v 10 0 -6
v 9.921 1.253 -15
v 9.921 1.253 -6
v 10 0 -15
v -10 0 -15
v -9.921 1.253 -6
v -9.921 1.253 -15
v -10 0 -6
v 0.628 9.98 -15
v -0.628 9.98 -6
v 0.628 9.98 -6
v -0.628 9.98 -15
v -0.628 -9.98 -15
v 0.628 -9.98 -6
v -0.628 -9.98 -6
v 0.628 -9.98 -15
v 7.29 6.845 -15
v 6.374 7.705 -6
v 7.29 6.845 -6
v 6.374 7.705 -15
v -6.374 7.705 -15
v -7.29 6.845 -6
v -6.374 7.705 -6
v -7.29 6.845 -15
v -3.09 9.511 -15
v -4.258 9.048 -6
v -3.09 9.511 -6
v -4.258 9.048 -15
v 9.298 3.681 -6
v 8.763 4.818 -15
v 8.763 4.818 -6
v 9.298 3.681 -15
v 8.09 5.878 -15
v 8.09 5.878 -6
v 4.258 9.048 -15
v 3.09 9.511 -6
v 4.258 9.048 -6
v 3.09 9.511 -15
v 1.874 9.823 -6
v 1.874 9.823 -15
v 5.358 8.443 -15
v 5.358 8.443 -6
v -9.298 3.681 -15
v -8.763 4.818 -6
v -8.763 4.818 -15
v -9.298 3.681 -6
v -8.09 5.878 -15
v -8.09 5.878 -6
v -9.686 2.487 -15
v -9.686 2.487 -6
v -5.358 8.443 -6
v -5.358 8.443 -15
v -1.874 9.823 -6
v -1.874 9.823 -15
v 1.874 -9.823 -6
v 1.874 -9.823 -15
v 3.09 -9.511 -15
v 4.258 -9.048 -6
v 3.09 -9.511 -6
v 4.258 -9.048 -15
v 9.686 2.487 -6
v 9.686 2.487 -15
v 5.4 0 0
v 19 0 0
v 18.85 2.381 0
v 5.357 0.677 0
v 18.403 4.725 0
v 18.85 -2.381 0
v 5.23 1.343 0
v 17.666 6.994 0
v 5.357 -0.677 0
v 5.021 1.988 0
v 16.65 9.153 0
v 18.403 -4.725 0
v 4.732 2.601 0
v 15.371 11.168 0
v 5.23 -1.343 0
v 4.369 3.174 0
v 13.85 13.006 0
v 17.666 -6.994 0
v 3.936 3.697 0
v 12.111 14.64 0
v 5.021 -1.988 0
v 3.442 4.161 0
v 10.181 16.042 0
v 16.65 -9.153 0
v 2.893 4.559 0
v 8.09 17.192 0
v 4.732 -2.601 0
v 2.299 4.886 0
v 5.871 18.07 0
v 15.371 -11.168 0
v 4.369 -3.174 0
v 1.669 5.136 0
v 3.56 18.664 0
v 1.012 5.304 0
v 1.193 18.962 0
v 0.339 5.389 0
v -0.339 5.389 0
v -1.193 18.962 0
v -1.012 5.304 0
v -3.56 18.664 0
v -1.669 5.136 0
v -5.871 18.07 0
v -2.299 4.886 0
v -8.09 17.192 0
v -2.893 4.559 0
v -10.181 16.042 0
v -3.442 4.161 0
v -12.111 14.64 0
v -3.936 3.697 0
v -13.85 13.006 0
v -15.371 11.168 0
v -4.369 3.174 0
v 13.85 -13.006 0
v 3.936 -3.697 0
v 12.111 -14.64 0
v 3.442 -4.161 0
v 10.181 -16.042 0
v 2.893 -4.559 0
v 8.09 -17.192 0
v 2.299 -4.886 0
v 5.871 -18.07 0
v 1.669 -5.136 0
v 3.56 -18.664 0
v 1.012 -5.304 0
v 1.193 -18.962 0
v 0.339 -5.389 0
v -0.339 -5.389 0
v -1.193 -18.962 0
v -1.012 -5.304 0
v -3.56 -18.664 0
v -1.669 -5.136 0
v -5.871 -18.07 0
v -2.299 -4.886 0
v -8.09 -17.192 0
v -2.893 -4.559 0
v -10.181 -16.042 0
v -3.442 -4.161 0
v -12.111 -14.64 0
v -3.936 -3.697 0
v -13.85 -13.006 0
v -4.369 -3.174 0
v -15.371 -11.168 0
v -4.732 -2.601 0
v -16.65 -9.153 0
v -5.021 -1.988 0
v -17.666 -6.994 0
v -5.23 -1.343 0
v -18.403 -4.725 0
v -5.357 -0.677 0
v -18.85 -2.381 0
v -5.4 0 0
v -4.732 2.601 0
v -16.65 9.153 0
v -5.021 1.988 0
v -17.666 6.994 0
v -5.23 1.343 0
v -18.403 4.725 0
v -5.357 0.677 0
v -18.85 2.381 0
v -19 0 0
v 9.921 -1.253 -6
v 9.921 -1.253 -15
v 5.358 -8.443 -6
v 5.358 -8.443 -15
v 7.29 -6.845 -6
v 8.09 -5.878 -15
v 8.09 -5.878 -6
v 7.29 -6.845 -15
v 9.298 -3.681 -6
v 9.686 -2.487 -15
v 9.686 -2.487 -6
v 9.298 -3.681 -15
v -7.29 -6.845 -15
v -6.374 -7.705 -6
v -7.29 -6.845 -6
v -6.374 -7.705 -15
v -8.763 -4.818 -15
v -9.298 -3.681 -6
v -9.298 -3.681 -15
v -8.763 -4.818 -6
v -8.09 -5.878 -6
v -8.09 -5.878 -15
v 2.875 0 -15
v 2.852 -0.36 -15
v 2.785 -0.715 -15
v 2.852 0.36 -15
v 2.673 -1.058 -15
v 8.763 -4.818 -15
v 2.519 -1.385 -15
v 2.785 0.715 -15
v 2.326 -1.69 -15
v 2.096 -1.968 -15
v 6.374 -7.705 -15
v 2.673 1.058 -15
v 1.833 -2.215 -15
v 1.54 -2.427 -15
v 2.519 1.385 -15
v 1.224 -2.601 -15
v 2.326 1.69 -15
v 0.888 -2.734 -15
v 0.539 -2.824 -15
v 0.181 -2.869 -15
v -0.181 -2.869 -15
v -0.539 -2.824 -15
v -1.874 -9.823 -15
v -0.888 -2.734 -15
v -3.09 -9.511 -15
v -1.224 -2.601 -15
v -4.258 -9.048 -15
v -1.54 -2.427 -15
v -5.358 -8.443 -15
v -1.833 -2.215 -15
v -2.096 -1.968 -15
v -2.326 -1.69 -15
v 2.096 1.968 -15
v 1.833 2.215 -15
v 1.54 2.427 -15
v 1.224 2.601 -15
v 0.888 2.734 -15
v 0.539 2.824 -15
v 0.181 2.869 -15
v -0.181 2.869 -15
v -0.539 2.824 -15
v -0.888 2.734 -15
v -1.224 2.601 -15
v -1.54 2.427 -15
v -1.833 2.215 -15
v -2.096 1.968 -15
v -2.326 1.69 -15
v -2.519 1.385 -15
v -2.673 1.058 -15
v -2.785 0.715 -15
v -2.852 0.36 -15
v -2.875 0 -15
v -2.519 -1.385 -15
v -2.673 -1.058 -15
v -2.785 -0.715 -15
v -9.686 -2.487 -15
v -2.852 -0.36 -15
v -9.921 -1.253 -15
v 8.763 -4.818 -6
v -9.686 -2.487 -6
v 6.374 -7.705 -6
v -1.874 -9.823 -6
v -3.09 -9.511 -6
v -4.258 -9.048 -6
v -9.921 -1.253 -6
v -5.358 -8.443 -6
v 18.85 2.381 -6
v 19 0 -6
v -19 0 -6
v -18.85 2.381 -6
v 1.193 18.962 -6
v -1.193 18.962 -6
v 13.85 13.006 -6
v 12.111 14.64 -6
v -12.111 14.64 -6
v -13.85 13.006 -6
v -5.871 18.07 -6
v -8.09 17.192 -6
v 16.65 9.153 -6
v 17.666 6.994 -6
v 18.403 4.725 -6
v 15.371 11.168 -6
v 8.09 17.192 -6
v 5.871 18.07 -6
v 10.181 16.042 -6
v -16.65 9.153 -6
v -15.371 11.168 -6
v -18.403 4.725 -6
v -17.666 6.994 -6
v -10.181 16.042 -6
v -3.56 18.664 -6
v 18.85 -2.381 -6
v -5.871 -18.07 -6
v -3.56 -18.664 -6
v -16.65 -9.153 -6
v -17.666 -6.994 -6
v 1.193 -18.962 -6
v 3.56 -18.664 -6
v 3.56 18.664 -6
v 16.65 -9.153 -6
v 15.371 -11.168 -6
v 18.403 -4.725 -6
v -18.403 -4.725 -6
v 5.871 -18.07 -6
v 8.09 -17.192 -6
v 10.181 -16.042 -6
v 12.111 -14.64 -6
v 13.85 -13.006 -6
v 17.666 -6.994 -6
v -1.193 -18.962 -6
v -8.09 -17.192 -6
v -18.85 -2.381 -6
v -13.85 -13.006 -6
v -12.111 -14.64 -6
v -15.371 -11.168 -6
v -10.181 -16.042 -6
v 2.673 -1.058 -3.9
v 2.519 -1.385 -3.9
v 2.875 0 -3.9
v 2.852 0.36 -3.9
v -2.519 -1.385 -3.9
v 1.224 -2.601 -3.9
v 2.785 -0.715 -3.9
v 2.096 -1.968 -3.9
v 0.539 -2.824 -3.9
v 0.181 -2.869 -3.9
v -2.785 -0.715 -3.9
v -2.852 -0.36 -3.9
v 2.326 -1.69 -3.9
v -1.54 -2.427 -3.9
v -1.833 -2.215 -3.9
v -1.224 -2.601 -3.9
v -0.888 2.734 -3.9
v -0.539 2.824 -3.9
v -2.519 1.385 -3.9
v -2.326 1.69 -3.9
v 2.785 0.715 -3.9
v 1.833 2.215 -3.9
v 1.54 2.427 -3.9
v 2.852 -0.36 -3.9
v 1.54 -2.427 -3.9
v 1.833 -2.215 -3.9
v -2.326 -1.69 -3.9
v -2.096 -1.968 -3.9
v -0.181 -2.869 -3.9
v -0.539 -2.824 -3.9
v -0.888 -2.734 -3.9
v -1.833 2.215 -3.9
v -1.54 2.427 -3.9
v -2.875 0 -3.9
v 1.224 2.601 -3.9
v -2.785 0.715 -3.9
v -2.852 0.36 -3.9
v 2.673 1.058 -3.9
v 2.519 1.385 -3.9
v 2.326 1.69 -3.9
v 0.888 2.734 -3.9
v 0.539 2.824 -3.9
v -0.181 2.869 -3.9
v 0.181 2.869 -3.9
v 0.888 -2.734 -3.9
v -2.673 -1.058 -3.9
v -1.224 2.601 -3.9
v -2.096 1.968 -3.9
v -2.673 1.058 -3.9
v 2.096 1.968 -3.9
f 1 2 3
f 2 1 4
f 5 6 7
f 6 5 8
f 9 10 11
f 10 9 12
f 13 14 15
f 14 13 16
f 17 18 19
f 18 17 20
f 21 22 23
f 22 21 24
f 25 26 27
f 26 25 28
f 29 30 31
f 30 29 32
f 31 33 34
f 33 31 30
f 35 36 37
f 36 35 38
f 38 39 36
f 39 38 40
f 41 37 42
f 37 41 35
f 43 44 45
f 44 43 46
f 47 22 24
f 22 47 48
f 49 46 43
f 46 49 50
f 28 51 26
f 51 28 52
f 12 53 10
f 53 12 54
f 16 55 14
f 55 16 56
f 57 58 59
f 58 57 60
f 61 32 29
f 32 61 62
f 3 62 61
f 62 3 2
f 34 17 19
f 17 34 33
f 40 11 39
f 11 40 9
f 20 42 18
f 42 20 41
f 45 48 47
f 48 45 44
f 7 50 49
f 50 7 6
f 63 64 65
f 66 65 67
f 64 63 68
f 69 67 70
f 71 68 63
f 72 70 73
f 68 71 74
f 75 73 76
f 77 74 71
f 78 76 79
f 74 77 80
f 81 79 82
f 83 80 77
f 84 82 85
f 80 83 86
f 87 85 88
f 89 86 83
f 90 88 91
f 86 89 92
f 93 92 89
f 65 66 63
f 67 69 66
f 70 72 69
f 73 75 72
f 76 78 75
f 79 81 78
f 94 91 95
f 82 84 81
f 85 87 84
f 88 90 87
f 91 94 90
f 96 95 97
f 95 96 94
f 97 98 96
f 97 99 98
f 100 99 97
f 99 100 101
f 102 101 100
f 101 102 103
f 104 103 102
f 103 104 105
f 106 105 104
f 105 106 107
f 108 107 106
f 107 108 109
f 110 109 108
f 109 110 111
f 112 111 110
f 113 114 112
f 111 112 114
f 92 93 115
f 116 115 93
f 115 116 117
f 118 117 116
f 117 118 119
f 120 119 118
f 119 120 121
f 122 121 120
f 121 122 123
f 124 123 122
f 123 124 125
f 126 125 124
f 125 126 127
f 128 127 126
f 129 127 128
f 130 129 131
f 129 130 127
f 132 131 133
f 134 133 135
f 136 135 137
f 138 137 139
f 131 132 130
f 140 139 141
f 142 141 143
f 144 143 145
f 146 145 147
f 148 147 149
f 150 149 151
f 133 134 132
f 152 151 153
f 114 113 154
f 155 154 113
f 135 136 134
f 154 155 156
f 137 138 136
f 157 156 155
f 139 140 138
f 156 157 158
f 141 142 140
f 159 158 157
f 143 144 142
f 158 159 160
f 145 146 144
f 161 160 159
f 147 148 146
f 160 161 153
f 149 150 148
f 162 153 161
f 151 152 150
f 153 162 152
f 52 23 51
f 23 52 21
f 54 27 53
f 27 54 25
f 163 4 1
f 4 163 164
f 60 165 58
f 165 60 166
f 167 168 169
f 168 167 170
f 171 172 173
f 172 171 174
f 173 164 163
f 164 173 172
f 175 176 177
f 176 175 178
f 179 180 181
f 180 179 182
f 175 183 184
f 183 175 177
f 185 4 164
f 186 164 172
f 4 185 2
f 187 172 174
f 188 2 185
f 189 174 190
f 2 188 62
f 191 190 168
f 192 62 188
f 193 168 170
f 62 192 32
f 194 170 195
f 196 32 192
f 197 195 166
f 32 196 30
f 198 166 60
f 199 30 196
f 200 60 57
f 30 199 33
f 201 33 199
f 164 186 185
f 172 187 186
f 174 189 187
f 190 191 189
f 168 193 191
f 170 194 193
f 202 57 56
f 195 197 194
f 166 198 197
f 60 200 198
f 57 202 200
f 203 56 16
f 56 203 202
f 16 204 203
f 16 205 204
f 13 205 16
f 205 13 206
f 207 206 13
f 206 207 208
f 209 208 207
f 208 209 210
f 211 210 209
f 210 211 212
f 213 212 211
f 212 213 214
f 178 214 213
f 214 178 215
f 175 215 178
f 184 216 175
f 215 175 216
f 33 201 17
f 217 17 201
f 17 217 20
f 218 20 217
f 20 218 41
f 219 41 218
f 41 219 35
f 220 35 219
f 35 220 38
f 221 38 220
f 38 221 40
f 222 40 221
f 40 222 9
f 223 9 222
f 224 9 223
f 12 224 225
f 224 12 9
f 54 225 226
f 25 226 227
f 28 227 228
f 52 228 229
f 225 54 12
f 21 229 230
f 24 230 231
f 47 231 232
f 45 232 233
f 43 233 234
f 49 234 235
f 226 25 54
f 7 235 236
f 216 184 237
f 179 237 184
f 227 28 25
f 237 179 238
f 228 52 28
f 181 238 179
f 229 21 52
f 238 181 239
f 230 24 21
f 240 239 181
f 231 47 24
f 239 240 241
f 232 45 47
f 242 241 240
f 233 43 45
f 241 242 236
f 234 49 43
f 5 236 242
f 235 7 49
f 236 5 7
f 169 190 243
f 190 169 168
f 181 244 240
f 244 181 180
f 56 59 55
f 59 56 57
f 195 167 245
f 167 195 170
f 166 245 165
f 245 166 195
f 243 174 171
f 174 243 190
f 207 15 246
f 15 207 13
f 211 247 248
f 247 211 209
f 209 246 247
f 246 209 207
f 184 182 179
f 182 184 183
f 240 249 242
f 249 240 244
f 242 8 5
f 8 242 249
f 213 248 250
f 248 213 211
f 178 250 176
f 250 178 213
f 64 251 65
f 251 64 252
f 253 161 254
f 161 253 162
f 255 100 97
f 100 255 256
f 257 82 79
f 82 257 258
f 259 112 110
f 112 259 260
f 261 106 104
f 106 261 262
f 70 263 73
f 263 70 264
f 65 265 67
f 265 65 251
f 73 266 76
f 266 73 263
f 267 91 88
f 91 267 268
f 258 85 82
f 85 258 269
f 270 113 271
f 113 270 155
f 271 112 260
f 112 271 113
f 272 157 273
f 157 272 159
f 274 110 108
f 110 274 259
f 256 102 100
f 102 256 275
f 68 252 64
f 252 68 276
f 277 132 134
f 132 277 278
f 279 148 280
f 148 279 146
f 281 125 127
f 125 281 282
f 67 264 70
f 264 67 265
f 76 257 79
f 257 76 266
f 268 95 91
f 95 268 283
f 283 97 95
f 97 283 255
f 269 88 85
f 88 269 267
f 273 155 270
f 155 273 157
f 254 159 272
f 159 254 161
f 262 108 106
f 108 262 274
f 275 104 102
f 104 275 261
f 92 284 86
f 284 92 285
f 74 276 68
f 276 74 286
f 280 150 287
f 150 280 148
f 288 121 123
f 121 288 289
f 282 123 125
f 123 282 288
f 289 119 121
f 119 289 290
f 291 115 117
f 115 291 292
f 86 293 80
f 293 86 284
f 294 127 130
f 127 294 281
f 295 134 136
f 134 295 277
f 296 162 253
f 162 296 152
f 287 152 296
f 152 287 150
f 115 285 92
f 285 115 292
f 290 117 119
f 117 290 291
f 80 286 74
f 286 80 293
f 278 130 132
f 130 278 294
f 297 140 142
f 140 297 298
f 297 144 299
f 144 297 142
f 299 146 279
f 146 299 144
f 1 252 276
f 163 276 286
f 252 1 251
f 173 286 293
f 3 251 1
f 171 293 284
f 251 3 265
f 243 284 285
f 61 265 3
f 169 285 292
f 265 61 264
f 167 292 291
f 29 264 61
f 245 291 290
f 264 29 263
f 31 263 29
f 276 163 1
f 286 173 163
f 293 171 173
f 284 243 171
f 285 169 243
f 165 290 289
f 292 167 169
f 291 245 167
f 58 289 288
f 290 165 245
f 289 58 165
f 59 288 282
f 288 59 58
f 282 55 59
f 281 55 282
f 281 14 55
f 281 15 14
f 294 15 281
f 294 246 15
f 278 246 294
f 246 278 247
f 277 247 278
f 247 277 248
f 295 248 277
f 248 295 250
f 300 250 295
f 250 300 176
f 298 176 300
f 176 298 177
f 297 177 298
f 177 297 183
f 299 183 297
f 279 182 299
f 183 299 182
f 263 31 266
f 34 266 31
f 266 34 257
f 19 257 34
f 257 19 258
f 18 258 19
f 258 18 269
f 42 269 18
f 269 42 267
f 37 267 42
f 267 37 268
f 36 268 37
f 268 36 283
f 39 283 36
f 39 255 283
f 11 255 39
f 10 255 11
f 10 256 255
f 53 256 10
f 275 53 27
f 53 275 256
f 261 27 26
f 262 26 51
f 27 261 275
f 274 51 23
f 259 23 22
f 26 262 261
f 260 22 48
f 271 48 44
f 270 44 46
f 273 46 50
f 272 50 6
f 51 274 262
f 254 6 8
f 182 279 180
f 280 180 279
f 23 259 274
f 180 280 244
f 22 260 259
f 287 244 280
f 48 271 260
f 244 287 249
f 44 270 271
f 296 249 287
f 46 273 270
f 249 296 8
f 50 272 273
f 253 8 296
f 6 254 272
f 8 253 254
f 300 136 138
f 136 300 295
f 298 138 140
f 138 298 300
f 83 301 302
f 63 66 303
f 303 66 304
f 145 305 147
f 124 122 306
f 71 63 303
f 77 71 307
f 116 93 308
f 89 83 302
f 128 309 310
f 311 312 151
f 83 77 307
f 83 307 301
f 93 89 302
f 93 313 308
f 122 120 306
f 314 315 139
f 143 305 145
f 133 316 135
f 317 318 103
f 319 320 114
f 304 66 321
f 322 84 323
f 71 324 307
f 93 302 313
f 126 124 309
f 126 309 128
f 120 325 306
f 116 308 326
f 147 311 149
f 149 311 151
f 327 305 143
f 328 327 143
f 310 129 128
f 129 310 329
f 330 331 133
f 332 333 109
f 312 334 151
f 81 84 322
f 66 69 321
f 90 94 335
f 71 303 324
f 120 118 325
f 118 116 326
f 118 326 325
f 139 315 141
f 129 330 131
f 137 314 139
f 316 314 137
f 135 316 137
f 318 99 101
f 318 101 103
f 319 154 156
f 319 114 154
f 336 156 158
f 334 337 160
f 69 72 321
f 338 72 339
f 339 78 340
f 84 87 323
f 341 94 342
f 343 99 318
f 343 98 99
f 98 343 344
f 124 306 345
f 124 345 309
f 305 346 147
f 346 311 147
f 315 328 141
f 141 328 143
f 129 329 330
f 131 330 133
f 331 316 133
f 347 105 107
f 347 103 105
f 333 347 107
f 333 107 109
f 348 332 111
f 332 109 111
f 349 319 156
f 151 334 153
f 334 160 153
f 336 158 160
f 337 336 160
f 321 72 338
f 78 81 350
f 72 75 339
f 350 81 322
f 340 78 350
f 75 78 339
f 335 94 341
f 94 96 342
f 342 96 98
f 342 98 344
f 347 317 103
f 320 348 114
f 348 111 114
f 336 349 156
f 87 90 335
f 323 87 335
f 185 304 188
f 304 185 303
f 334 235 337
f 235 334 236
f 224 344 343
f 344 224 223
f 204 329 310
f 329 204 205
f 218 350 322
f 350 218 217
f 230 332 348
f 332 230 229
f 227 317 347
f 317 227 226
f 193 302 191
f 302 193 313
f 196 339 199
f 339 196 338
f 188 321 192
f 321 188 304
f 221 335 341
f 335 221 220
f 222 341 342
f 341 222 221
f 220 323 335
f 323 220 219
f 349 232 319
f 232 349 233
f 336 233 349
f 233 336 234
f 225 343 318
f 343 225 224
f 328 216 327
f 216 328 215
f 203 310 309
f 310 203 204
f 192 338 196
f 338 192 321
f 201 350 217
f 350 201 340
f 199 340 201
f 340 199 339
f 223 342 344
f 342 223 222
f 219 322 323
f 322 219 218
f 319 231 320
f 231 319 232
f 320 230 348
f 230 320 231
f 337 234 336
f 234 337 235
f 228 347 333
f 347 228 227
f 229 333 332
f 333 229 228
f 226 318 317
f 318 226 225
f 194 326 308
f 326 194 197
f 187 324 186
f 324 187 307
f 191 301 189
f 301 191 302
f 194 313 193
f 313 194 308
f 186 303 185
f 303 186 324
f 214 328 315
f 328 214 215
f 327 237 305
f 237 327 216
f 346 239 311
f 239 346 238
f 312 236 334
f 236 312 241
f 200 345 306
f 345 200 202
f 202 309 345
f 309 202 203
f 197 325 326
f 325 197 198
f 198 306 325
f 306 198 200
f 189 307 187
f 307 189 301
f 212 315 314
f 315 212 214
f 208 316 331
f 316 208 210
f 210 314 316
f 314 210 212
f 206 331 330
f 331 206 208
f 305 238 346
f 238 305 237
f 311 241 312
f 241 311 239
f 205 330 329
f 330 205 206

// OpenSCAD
$fn = 50;


difference() {
	union() {
		translate(v = [0, 0, -15.0000000000]) {
			cylinder(h = 15, r = 10.0000000000);
		}
		translate(v = [0, 0, -6.0000000000]) {
			cylinder(h = 6, r = 19.0000000000);
		}
	}
	union() {
		translate(v = [0, 0, 0]) {
			rotate(a = [0, 0, 0]) {
				difference() {
					union() {
						#translate(v = [0, 0, -15.0000000000]) {
							cylinder(h = 15, r = 2.6000000000);
						}
						#translate(v = [0, 0, -3.9000000000]) {
							cylinder(h = 3.9000000000, r = 10.0000000000, r1 = 2.8750000000, r2 = 5.4000000000);
						}
						#translate(v = [0, 0, -15.0000000000]) {
							cylinder(h = 15, r = 2.8750000000);
						}
						#translate(v = [0, 0, -15.0000000000]) {
							cylinder(h = 15, r = 2.6000000000);
						}
					}
					union();
				}
			}
		}
	}
}
